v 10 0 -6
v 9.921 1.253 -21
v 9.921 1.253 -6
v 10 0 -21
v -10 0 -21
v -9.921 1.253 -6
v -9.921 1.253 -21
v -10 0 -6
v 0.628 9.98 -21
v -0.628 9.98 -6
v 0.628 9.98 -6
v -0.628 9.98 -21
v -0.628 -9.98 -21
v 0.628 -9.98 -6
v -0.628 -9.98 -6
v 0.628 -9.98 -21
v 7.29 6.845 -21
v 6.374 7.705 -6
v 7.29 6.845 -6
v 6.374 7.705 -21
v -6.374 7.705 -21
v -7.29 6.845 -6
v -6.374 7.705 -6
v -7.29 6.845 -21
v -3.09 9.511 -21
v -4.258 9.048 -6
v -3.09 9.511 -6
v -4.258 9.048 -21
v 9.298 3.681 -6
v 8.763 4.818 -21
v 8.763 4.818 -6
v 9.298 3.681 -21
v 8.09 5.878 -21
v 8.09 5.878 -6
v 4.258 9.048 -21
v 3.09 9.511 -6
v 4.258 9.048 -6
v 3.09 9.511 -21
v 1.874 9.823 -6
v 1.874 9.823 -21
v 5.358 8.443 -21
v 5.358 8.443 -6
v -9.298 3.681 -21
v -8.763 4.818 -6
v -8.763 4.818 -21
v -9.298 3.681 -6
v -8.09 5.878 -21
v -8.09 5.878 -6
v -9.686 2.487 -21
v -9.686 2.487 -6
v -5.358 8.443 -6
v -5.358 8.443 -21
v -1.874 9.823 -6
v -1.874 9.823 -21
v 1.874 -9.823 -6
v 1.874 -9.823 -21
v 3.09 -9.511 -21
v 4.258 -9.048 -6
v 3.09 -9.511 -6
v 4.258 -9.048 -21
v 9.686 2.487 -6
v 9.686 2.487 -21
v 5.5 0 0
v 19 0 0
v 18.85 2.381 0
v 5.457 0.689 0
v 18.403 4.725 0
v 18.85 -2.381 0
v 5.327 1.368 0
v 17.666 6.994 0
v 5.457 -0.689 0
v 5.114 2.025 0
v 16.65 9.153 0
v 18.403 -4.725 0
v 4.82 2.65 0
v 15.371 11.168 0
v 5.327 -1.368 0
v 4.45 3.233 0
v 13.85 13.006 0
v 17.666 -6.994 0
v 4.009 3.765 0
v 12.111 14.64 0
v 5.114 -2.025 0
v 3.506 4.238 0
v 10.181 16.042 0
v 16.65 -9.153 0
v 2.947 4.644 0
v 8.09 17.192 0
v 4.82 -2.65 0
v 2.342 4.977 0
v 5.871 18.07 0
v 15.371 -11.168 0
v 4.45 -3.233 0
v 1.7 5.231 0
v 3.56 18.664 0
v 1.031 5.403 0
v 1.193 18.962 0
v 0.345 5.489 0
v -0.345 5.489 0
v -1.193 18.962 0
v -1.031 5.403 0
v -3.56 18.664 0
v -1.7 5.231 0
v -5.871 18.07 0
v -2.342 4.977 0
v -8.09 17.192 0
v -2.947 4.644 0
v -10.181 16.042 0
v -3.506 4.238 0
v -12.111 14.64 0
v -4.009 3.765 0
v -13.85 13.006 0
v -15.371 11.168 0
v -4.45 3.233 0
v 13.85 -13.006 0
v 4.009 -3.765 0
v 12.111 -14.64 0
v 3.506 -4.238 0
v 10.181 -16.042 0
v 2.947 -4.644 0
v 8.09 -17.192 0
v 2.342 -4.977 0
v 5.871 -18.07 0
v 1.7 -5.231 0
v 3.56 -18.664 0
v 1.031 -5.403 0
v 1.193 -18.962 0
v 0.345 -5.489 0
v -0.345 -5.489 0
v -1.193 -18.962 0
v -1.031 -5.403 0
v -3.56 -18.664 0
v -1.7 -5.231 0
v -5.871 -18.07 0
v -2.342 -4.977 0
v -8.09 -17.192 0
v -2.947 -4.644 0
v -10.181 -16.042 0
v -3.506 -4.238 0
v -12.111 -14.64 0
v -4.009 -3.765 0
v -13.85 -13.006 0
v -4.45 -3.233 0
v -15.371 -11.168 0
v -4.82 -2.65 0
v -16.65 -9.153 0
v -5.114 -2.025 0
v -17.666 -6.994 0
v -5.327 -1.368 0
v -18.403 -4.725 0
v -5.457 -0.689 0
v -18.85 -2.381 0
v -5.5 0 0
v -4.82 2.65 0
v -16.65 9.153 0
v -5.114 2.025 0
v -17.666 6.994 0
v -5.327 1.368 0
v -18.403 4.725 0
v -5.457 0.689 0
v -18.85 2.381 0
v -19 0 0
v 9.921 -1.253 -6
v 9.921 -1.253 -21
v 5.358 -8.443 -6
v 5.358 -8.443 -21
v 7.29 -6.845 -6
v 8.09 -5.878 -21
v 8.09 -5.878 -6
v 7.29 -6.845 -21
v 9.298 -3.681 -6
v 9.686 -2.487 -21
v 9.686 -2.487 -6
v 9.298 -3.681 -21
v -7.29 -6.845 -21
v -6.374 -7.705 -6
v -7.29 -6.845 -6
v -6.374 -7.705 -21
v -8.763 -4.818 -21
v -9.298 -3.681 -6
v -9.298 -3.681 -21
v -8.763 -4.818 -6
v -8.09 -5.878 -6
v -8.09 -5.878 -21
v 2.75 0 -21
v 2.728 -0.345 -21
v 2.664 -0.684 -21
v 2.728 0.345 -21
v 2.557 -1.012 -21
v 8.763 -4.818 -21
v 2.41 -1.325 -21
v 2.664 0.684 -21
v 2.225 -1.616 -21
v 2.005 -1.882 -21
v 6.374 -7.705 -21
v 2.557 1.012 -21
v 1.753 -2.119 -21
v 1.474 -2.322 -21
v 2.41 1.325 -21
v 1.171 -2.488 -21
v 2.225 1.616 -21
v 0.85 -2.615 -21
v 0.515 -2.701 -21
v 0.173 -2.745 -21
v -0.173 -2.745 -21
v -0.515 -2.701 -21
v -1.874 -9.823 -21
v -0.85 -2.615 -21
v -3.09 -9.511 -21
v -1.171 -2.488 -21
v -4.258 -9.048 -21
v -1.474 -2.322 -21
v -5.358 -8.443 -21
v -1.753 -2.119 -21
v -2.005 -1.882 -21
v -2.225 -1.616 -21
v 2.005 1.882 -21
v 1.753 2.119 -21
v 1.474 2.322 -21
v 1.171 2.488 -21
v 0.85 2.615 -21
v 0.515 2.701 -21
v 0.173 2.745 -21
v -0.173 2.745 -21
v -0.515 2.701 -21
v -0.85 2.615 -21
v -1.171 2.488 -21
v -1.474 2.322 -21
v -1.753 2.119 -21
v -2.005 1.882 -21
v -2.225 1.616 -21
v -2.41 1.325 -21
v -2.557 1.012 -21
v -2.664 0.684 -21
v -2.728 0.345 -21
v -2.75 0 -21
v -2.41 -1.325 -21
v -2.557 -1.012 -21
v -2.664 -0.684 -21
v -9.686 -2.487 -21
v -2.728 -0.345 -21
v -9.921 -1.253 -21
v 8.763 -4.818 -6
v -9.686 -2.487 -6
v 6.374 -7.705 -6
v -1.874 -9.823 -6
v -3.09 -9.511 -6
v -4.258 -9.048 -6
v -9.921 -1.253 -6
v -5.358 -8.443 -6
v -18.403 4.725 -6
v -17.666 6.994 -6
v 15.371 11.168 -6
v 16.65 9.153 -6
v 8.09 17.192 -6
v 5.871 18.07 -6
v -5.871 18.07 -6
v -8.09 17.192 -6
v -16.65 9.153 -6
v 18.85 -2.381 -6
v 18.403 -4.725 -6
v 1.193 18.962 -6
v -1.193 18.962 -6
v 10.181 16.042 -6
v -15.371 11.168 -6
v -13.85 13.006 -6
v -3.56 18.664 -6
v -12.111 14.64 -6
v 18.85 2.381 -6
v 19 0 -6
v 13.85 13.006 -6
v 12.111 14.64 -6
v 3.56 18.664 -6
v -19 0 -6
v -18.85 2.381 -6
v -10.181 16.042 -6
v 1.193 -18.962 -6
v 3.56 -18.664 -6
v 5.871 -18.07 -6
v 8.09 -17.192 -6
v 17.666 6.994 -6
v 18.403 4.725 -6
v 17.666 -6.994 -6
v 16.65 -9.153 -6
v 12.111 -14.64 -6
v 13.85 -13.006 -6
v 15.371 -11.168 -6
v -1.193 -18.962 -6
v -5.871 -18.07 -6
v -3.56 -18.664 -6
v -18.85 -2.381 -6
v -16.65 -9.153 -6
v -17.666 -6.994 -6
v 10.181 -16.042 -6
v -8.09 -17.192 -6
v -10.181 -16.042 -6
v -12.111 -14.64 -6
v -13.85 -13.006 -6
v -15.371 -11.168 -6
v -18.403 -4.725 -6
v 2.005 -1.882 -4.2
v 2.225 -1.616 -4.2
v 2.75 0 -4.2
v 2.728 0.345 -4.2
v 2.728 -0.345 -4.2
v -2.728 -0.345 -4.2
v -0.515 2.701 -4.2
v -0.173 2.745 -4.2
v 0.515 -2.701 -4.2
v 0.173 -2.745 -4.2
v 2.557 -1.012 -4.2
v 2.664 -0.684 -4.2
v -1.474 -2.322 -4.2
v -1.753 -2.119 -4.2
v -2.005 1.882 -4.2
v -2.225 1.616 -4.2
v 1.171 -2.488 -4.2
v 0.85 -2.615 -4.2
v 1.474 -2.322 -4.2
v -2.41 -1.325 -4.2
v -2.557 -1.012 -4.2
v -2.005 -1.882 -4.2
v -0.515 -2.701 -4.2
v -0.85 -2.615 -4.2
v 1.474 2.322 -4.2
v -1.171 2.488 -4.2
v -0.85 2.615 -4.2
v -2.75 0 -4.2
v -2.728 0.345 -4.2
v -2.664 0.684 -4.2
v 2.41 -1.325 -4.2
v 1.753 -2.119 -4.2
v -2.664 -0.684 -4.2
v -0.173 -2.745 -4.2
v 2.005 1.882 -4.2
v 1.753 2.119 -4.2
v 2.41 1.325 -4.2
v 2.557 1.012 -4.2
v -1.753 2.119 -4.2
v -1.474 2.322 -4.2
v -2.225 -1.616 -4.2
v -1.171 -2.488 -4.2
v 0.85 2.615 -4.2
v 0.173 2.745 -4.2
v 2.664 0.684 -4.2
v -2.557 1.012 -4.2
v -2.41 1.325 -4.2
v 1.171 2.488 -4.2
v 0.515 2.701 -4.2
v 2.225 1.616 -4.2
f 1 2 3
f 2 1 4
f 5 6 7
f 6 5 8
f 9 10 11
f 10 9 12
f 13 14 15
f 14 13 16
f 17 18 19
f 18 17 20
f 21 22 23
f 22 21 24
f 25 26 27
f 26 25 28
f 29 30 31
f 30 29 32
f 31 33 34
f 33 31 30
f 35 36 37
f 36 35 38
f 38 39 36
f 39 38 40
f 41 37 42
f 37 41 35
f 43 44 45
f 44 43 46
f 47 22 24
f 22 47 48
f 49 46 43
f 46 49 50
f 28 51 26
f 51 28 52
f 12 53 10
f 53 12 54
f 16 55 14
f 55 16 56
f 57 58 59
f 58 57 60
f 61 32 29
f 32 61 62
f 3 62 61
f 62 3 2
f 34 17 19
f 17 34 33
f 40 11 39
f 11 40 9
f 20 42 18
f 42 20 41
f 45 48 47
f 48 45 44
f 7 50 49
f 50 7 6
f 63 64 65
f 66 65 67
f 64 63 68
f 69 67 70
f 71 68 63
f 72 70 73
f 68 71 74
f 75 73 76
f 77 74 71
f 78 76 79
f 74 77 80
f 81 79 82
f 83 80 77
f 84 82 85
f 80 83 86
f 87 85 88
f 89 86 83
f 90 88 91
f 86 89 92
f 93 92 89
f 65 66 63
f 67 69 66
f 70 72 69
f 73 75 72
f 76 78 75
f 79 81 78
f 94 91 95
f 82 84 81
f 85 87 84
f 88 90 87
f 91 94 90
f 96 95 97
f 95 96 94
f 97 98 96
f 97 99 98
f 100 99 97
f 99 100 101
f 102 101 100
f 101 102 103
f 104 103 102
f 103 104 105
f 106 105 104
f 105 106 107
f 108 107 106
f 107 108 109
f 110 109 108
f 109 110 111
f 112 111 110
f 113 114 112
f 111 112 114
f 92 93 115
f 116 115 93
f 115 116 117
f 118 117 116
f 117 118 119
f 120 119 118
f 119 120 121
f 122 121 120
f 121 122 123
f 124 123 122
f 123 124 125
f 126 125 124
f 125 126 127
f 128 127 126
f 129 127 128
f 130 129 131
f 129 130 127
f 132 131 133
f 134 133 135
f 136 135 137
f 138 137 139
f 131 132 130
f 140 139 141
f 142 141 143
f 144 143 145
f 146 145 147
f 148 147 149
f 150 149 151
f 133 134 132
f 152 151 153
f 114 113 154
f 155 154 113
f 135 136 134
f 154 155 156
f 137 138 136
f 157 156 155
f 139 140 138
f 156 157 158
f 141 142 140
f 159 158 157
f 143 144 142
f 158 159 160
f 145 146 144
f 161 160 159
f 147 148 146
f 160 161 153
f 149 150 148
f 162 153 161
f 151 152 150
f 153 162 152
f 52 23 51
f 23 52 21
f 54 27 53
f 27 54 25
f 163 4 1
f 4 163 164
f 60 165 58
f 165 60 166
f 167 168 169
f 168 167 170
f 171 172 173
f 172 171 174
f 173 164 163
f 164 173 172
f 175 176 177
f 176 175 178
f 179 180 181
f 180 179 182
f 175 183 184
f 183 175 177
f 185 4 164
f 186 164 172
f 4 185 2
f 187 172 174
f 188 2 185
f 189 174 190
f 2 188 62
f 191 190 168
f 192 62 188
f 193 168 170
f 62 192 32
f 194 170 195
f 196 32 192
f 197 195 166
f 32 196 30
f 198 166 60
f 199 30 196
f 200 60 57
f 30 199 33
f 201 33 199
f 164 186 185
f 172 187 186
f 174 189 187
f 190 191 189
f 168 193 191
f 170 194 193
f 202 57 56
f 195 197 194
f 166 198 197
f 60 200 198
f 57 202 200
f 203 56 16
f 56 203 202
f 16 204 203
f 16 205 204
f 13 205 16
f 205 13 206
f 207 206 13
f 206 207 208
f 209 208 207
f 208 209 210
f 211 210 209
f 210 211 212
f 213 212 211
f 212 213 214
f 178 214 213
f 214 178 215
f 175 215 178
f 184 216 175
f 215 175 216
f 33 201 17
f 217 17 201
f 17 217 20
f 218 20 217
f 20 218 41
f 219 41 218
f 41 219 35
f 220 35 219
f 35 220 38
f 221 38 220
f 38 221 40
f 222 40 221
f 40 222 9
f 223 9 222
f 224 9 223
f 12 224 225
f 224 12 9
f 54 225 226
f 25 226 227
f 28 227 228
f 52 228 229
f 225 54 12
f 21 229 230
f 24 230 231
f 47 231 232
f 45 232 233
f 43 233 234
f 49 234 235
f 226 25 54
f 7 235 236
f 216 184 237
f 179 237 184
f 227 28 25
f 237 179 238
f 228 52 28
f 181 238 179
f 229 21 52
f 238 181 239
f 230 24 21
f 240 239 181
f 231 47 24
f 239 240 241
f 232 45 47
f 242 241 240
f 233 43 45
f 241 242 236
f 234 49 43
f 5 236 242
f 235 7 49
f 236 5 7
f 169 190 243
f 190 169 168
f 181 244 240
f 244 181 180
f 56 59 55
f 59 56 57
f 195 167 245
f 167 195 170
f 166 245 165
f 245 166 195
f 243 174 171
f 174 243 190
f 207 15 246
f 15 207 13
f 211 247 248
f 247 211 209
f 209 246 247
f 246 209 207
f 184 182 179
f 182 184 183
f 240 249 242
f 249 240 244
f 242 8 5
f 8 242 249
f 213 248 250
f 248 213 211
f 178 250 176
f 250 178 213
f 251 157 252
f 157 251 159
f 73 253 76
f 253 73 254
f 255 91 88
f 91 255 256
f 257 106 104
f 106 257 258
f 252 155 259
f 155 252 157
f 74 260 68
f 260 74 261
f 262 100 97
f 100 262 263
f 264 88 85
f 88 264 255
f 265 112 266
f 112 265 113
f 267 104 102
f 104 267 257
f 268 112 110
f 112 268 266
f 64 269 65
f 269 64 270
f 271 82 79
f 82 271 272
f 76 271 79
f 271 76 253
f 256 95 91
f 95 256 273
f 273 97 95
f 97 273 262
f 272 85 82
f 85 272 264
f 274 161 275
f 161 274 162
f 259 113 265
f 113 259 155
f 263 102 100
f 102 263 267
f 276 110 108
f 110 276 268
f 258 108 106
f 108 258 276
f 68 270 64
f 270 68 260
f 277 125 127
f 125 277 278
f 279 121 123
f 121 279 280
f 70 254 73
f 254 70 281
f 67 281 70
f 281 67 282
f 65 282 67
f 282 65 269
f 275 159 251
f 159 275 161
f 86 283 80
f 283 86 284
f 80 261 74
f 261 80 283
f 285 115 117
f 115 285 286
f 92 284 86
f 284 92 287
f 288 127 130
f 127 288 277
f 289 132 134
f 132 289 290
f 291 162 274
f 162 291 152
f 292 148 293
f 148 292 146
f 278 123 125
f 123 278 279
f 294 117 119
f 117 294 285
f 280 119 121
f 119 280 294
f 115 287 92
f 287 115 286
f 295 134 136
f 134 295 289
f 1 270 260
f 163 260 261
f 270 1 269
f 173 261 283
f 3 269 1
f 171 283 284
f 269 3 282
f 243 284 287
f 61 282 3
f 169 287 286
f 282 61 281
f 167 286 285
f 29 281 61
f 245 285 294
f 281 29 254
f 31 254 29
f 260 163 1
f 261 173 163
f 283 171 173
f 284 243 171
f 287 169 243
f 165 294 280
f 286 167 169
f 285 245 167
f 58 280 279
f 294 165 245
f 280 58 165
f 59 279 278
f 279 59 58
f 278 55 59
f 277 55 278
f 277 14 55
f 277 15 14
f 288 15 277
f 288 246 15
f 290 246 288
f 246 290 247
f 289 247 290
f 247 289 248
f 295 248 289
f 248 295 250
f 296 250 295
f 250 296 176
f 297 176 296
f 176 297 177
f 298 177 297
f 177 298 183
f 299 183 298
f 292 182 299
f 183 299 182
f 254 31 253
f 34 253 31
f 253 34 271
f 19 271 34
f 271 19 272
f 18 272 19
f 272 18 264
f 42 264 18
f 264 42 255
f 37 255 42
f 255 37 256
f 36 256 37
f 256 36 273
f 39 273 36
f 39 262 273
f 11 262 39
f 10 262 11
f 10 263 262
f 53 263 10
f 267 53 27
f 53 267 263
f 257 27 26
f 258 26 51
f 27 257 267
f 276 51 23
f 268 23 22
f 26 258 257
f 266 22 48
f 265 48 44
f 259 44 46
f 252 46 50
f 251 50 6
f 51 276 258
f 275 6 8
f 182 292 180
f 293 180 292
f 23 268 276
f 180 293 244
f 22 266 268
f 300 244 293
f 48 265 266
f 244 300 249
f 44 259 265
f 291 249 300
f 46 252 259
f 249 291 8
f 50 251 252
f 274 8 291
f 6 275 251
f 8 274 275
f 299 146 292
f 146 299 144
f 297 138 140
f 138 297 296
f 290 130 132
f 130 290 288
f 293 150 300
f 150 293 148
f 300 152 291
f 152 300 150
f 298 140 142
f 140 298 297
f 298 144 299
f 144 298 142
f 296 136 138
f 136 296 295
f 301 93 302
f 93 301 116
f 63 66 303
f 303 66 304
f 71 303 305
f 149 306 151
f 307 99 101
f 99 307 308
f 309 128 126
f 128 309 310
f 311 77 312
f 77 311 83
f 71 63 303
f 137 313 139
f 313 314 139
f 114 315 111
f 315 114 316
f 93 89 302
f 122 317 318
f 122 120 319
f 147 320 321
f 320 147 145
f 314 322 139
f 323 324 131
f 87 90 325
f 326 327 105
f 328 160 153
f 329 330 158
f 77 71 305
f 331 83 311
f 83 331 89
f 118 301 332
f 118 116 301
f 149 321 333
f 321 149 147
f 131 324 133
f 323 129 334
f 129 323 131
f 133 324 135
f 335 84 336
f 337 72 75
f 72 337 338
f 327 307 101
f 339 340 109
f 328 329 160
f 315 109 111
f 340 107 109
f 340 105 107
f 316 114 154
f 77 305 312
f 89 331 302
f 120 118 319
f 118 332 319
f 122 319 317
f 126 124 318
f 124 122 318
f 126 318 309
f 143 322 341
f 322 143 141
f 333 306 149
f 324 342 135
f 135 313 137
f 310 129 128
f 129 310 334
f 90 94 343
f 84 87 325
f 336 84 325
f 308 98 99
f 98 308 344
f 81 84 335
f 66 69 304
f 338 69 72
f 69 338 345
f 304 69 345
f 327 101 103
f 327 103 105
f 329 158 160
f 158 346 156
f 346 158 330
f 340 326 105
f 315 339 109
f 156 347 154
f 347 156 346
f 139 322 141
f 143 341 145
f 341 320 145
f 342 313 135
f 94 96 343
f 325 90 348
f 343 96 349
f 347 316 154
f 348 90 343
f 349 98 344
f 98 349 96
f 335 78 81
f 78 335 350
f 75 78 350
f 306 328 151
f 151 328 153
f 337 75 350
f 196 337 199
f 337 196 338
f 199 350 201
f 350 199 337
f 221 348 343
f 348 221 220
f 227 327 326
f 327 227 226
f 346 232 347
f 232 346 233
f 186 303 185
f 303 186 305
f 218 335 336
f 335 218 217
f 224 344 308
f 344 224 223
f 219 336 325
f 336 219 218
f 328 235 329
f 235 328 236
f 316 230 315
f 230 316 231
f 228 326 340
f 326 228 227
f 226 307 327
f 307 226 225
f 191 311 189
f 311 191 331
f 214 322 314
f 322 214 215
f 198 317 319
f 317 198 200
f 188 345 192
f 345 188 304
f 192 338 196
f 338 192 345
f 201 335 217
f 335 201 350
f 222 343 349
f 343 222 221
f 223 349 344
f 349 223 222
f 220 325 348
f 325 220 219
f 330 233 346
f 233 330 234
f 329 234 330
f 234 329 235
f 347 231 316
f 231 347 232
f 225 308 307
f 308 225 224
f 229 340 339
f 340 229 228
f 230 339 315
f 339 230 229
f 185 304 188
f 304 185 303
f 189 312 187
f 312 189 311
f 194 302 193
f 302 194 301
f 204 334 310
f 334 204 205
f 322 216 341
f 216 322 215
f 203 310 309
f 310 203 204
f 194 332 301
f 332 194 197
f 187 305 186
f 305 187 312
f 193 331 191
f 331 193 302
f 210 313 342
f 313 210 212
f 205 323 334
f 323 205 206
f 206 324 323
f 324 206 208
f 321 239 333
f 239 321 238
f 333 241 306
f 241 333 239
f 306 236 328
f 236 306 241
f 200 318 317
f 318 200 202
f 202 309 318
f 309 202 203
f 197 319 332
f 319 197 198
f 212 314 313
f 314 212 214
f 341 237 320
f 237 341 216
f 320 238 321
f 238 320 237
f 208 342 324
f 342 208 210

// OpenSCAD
$fn = 50;


difference() {
	union() {
		translate(v = [0, 0, -21.0000000000]) {
			cylinder(h = 21, r = 10.0000000000);
		}
		translate(v = [0, 0, -6.0000000000]) {
			cylinder(h = 6, r = 19.0000000000);
		}
	}
	union() {
		translate(v = [0, 0, 0]) {
			rotate(a = [0, 0, 0]) {
				difference() {
					union() {
						#translate(v = [0, 0, -21.0000000000]) {
							cylinder(h = 21, r = 2.2500000000);
						}
						#translate(v = [0, 0, -4.2000000000]) {
							cylinder(h = 4.2000000000, r1 = 2.7500000000, r2 = 5.5000000000);
						}
						#translate(v = [0, 0, -21.0000000000]) {
							cylinder(h = 21, r = 2.7500000000);
						}
						#translate(v = [0, 0, -21.0000000000]) {
							cylinder(h = 21, r = 2.2500000000);
						}
					}
					union();
				}
			}
		}
	}
}
